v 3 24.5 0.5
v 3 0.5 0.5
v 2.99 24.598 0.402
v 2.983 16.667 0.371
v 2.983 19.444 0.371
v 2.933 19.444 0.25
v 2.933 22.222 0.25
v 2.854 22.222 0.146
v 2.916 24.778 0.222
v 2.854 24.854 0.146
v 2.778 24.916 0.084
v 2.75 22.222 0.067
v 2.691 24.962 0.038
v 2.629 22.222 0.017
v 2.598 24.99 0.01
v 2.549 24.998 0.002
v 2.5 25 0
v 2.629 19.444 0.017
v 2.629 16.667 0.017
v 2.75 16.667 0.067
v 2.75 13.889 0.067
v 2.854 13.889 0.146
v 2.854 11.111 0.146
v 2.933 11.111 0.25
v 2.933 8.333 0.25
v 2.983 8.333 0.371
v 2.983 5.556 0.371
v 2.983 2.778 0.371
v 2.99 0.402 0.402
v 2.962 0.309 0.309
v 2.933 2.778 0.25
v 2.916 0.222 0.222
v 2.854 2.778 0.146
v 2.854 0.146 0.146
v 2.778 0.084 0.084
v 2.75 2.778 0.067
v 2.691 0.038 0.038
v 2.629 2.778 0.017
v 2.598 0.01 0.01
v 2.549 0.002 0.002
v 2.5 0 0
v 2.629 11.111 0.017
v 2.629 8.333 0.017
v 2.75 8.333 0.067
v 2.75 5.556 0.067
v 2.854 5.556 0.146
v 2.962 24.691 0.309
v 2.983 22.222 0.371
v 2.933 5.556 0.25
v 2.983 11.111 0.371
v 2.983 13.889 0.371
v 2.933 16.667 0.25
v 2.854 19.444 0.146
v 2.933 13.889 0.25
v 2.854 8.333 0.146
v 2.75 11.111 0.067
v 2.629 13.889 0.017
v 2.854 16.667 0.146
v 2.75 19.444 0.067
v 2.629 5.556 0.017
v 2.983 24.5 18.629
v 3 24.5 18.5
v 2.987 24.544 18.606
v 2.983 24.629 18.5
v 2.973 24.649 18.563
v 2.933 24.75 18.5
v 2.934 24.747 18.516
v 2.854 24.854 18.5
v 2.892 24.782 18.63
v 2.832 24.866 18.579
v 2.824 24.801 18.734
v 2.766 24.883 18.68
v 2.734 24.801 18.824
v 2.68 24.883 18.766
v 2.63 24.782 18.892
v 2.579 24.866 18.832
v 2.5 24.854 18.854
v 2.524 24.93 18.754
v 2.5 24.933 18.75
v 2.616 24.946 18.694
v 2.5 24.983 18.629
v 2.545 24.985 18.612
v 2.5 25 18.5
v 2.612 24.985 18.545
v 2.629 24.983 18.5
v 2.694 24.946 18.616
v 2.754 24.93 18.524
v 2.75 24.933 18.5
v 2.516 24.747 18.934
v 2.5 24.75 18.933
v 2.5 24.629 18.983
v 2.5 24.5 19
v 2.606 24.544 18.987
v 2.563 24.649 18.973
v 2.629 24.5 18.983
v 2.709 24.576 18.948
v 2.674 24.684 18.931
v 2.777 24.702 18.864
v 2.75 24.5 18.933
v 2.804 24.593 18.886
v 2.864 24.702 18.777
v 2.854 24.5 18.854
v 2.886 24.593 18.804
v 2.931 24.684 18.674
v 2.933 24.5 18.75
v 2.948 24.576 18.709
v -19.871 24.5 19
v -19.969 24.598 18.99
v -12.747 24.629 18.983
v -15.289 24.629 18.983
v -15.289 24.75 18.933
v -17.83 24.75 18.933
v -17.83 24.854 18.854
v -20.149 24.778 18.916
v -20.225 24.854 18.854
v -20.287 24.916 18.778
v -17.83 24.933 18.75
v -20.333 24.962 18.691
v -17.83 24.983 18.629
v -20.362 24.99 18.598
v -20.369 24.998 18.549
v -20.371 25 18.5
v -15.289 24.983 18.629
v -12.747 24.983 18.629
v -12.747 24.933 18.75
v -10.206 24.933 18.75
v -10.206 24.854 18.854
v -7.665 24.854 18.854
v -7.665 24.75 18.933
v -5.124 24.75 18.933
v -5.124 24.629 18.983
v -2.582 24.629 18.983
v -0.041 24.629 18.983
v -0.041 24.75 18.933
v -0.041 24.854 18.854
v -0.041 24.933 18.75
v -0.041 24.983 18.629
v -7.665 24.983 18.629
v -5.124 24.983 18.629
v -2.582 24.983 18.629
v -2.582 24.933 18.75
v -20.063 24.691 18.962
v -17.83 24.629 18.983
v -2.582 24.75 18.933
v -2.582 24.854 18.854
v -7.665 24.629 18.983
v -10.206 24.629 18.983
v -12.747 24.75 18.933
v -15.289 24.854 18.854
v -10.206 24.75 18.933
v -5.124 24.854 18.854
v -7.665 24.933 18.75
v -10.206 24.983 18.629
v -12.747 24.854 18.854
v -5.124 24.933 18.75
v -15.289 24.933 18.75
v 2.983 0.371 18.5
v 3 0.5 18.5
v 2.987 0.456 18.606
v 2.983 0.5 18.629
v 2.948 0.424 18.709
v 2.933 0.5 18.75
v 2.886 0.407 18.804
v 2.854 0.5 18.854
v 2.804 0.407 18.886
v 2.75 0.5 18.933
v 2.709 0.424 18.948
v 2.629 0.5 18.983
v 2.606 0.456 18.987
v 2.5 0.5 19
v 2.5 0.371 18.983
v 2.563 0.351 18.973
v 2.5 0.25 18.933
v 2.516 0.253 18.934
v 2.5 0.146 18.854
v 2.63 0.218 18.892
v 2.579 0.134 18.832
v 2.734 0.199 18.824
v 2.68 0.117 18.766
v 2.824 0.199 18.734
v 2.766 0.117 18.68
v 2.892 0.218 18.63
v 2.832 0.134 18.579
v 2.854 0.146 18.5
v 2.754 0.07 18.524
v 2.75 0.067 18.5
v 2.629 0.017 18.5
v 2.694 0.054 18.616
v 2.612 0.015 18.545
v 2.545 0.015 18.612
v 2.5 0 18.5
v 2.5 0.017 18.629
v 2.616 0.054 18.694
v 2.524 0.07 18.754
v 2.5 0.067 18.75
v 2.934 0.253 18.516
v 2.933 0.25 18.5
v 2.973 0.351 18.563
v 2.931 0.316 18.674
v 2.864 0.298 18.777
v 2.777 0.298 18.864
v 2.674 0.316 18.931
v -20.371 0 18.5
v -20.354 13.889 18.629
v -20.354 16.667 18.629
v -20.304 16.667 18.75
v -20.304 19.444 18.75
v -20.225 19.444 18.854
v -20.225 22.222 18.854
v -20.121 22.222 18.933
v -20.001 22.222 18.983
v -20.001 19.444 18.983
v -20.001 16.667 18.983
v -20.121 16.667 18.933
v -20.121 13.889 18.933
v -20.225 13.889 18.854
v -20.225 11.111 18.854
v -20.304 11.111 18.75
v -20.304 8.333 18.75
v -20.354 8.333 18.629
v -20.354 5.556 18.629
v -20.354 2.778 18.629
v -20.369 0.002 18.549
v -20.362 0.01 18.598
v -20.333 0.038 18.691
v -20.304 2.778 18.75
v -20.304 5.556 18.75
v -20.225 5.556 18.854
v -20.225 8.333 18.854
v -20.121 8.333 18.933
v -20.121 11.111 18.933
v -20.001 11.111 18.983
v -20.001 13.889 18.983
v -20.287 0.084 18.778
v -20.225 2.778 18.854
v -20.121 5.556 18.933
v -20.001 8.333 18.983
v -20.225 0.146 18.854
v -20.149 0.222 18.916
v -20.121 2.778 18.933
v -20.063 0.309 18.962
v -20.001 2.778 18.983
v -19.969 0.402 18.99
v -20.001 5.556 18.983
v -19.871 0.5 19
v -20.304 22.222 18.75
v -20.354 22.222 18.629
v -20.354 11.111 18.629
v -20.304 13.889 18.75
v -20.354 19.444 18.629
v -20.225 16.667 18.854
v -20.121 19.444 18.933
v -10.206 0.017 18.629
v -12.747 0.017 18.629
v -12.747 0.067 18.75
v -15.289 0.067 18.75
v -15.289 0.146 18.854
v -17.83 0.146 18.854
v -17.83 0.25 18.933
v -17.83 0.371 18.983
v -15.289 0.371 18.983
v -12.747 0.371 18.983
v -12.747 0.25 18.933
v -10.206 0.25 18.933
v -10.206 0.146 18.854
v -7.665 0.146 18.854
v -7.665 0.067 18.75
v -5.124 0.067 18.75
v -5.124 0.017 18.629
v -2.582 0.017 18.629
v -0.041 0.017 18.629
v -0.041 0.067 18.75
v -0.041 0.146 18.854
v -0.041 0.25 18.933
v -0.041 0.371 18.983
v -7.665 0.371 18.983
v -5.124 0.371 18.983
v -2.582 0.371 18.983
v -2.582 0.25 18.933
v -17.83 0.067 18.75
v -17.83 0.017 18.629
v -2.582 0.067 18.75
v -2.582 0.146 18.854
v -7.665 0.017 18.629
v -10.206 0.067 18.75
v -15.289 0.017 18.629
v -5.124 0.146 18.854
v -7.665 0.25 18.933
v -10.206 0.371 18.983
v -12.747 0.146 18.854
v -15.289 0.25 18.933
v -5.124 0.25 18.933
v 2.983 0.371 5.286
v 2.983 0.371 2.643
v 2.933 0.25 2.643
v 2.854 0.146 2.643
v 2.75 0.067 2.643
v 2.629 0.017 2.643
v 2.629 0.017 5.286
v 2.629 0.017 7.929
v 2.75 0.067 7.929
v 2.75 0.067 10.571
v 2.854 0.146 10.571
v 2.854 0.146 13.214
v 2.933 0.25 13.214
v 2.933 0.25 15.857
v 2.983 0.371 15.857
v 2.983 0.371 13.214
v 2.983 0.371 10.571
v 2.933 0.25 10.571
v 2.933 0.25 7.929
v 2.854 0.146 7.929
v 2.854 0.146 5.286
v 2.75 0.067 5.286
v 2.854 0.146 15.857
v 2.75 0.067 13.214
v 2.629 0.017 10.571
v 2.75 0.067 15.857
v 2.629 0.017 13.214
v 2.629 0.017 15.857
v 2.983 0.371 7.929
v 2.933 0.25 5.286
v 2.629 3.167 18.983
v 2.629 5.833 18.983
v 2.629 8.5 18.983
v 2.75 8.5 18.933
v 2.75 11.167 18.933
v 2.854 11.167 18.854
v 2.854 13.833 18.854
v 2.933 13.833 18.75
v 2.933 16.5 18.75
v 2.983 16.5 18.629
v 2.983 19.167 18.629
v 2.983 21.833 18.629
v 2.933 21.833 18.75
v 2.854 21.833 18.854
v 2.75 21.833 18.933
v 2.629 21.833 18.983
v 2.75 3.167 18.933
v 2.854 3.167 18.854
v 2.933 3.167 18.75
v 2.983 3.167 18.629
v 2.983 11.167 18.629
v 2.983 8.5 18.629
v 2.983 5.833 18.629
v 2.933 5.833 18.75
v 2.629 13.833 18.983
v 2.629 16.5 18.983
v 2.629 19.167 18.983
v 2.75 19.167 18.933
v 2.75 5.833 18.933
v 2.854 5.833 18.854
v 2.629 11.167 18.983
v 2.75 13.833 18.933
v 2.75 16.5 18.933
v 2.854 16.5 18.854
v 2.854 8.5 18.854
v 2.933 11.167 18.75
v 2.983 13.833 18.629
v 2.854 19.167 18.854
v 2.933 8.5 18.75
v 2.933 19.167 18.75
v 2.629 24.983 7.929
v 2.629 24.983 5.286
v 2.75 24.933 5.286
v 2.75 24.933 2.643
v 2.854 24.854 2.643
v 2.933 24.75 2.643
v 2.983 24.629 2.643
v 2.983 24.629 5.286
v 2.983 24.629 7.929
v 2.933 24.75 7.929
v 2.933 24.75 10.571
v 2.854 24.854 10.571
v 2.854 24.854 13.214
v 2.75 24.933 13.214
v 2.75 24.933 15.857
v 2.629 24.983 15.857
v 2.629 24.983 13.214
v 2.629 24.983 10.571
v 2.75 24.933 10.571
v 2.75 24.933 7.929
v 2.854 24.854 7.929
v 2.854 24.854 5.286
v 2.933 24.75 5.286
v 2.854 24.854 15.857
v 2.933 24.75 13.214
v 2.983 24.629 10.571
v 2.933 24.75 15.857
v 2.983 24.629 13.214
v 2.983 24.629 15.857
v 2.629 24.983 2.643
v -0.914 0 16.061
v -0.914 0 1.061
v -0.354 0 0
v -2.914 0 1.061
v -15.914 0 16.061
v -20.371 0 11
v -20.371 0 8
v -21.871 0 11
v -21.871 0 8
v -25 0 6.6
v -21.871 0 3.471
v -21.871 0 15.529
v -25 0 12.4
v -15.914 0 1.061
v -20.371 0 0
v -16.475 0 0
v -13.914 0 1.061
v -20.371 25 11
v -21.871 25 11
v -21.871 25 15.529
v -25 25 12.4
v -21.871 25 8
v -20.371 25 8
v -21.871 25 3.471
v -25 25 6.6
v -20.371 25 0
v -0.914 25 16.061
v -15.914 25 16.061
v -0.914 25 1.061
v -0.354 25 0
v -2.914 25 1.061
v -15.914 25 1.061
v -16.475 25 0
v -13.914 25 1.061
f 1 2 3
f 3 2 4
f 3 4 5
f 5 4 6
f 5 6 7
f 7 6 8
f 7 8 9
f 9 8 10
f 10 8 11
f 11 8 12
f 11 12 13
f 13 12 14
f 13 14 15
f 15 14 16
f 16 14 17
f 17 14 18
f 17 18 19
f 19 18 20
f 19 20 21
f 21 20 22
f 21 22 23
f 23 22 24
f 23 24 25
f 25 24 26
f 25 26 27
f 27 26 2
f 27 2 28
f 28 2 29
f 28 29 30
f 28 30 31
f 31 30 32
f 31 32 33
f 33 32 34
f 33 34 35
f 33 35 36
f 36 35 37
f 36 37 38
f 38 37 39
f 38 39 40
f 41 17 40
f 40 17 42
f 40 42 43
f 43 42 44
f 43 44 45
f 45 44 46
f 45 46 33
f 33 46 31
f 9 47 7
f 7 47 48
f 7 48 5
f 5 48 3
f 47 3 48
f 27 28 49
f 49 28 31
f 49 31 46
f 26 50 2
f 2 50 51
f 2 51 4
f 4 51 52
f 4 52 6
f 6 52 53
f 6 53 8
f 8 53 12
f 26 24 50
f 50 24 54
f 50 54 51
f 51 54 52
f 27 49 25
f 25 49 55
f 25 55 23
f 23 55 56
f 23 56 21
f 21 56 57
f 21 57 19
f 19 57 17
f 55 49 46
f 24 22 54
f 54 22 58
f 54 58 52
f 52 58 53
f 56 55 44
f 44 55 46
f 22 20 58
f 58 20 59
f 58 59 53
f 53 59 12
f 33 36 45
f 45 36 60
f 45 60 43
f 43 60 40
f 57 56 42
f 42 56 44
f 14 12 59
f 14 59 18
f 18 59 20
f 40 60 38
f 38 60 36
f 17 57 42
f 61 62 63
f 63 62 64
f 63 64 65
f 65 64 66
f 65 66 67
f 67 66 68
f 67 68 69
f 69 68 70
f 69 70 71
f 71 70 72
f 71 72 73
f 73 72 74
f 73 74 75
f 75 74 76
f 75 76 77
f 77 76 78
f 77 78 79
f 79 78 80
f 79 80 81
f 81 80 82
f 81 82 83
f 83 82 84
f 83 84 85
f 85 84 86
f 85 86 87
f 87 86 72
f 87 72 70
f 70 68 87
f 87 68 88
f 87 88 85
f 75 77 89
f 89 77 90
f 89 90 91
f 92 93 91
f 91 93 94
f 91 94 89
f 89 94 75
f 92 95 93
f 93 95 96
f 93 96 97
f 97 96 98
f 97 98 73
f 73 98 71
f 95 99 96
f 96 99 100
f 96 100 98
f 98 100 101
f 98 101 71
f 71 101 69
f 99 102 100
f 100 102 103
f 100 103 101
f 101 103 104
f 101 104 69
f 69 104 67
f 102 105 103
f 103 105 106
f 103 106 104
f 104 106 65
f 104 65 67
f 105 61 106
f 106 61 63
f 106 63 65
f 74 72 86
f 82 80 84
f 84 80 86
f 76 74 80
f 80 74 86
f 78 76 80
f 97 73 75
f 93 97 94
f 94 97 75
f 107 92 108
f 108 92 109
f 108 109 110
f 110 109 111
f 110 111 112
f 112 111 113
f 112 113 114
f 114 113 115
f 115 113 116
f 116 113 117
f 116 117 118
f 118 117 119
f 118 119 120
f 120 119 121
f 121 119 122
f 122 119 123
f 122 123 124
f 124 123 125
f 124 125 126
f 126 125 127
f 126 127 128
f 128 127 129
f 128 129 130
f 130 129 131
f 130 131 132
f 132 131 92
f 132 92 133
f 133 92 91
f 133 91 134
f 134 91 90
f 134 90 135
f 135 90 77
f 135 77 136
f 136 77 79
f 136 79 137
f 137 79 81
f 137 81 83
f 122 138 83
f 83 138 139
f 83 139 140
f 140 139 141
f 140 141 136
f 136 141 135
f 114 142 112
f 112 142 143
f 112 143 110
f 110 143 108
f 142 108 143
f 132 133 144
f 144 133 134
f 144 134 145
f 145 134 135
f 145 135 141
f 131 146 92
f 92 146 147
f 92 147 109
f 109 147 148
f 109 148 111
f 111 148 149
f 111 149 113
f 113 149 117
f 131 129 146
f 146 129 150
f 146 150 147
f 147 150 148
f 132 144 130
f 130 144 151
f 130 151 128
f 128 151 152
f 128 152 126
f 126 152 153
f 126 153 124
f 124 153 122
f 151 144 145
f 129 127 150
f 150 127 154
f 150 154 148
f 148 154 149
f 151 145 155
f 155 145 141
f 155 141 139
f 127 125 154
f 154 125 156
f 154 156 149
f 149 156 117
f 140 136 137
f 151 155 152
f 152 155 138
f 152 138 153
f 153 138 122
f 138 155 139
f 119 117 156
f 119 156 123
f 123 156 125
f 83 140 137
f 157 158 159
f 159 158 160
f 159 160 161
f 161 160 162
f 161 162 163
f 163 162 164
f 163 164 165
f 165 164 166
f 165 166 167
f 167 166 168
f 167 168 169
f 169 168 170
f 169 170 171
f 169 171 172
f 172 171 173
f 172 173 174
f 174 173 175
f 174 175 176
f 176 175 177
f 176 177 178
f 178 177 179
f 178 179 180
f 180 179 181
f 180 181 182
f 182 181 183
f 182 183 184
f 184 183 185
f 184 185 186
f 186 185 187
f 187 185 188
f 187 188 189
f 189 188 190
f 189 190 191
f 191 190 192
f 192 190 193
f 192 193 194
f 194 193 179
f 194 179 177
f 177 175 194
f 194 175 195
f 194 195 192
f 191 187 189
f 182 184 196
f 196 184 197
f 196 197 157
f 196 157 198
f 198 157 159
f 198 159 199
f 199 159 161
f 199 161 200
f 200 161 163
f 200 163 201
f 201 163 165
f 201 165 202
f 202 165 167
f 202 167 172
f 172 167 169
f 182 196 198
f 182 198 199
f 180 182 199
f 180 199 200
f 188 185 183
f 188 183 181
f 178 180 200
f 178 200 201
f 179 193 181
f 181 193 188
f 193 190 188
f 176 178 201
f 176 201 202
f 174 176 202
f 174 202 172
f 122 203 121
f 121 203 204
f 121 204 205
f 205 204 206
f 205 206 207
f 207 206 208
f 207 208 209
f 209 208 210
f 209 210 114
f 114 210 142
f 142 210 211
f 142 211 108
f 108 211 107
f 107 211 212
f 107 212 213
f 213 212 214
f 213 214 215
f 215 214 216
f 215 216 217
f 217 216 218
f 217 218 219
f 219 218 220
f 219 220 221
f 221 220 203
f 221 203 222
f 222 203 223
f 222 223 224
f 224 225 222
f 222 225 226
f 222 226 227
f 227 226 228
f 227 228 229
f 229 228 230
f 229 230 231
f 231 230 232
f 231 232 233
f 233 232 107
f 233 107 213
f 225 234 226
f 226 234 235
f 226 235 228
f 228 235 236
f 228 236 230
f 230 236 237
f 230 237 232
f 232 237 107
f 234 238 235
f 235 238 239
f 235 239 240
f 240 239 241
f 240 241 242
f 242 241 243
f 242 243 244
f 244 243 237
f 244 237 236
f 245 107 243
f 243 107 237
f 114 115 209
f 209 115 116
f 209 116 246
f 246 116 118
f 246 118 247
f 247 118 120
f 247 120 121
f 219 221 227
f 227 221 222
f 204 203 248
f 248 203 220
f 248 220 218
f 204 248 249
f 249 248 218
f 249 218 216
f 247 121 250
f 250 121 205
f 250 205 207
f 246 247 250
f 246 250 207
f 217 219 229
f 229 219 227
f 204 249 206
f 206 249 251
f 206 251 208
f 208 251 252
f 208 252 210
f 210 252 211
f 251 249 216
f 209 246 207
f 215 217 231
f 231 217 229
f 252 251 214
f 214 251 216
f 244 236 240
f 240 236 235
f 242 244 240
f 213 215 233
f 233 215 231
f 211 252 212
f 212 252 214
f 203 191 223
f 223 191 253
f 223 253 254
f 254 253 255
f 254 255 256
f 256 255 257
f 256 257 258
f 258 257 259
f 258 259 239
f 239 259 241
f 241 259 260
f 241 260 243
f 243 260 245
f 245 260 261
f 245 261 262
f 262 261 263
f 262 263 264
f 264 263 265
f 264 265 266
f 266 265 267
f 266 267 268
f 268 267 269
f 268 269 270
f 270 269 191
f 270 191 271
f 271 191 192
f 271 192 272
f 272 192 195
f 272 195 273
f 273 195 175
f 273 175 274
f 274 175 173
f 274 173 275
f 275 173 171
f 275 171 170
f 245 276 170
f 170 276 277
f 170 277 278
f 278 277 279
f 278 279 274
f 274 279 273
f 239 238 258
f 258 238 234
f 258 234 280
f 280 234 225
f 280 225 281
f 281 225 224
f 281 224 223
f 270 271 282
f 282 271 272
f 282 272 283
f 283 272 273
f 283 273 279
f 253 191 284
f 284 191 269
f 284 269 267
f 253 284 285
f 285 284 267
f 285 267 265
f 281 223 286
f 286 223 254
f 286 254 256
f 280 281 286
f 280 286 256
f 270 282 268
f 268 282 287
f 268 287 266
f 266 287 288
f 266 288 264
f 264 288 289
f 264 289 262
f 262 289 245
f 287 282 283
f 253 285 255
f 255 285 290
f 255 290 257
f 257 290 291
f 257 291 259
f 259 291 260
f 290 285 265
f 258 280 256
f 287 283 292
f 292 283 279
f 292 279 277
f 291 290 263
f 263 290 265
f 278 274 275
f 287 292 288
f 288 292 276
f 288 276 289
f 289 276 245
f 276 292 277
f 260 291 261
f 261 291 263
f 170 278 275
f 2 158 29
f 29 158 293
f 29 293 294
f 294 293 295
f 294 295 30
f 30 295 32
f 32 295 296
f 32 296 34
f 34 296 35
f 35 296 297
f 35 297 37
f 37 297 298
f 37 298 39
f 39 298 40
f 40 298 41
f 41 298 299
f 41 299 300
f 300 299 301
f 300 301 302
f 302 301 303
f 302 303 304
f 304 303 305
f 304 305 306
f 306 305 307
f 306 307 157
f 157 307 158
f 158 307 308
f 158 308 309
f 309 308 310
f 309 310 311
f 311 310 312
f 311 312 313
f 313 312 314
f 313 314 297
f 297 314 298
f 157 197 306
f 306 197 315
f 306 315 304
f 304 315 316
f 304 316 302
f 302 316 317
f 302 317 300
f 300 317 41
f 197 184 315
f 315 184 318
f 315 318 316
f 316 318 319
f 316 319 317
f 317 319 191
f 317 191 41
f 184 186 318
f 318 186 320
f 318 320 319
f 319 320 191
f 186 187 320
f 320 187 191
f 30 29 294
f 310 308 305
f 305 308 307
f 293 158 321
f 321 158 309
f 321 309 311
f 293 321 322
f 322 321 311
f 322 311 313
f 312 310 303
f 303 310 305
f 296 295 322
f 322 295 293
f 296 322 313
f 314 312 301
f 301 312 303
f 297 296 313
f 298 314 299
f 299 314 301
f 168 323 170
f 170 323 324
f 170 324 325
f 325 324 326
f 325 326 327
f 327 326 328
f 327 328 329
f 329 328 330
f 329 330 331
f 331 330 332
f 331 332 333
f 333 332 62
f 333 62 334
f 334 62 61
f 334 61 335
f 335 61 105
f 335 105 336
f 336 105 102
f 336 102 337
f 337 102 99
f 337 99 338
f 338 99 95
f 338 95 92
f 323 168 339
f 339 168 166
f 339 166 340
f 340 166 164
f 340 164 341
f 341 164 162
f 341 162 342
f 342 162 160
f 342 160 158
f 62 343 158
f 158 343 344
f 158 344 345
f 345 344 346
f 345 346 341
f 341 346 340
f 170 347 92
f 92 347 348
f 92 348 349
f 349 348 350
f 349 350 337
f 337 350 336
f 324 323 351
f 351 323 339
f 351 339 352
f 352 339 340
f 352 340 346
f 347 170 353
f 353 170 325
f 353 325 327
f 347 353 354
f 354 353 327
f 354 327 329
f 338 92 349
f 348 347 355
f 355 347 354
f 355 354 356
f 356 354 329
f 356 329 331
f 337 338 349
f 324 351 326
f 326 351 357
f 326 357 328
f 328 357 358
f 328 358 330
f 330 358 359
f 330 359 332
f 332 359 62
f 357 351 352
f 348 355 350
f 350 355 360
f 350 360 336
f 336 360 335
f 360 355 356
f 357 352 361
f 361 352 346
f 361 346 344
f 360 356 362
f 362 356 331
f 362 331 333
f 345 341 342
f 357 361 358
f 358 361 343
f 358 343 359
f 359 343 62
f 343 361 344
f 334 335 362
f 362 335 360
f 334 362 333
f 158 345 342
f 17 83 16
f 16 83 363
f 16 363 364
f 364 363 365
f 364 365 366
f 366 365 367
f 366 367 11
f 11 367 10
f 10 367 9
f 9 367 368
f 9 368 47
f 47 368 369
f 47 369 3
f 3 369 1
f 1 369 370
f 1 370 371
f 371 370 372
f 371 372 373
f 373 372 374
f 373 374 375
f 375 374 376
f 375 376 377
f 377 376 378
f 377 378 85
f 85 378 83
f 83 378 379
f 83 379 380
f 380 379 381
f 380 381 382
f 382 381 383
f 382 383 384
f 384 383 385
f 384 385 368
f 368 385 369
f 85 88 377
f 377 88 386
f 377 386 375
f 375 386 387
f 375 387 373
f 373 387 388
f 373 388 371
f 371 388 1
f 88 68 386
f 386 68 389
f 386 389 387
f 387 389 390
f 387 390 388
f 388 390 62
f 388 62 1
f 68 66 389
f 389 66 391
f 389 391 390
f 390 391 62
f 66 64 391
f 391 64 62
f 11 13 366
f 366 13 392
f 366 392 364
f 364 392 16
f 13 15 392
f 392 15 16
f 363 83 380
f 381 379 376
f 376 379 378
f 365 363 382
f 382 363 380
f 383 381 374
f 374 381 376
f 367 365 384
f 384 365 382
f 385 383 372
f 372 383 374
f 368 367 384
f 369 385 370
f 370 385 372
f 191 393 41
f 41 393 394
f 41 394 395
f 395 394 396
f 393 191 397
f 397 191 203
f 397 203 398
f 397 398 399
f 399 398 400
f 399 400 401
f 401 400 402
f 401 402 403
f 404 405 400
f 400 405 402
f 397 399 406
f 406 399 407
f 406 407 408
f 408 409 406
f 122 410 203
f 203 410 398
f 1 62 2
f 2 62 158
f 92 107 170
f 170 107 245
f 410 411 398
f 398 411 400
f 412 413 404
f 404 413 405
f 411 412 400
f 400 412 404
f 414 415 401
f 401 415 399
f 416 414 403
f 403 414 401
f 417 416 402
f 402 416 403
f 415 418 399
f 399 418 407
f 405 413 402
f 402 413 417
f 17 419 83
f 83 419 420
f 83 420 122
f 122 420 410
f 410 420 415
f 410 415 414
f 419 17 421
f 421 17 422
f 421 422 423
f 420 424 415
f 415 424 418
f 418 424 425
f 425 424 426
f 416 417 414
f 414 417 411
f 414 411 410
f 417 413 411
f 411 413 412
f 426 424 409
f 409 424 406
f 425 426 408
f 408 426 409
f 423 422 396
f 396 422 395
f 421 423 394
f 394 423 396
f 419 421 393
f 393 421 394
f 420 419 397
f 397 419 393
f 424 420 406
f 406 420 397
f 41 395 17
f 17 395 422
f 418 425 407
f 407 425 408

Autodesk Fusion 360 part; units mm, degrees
sketch "Sketch1" plane through (0, 0, 0) normal (0, 0, 1) x (1, 0, 0) in component "Light Braccket"
  line L0 (0, 0) -> (-25, 0)
  line L1 (-25, 0) -> (-25, 25)
  line L2 (-25, 25) -> (0, 25)
  line L3 (0, 25) -> (0, 0)
  dimension "d1" = 25
  dimension "d2" = 25
extrude "Extrude1" add sketch "Sketch1" along normal blind 25 in component "Light Braccket"
sketch "Sketch2" plane through (0, 0, 0) normal (0, -1, 0) x (1, 0, 0) in component "Light Braccket"
  line L0 (-25, 0) -> (0, 0)
  line L1 (0, 0) -> (0, 25)
  line L2 (0, 25) -> (-25, 25)
  line L3 (-25, 25) -> (-25, 0)
  line L4 (-0.3536, 0) -> (-2.9142, 1.0607)
  line L5 (-0.3536, 0) -> (0.9236, 0) construction
  line L6 (-2.9142, 1.0607) -> (-0.9142, 1.0607)
  line L7 (-0.9142, 1.0607) -> (-0.9142, 16.0607)
  line L8 (-0.9142, 18.8102) -> (-15.9142, 18.8102) construction
  line L9 (-8.4142, 18.8102) -> (-8.4142, -0.114) construction
  line L10 (-16.4749, 0) -> (-13.9142, 1.0607)
  line L11 (-13.9142, 1.0607) -> (-15.9142, 1.0607)
  line L12 (-15.9142, 1.0607) -> (-15.9142, 16.0607)
  line L13 (-0.9142, 16.0607) -> (-15.9142, 16.0607)
  dimension "d14" = 15
extrude "Extrude2" cut sketch "Sketch2" against normal blind 40 contours L0 L4 L6 L7 L10 L11 L12 L13 in component "Light Braccket"
sketch "Sketch3" plane through (0, 0, 0) normal (0, -1, 0) x (1, 0, 0) in component "Light Braccket"
  line L0 (-16.4749, 0) -> (-13.9142, 1.0607)
  line L1 (-13.9142, 1.0607) -> (-15.9142, 1.0607)
  line L2 (-15.9142, 1.0607) -> (-15.9142, 16.0607)
  line L3 (-15.9142, 16.0607) -> (-0.9142, 16.0607)
  line L4 (-0.9142, 16.0607) -> (-0.9142, 1.0607)
  line L5 (-0.9142, 1.0607) -> (-2.9142, 1.0607)
  line L6 (-2.9142, 1.0607) -> (-0.3536, 0)
  line L7 (-0.3536, 0) -> (0, 0)
  line L8 (0, 0) -> (0, 25)
  line L9 (0, 25) -> (-25, 25)
  line L10 (-25, 25) -> (-25, 0)
  line L11 (-25, 0) -> (-16.4749, 0)
  line L12 (-25, 25) -> (0, 25)
  line L13 (0, 25) -> (0, 19)
  line L14 (0, 19) -> (-25, 19)
  line L15 (-25, 19) -> (-25, 25)
extrude "Extrude3" cut sketch "Sketch3" against normal blind 39 contours L8 L9 L10 L12 L13 L14 L15 in component "Light Braccket"
sketch "Sketch4" plane through (0, 0, 0) normal (0, -1, 0) x (1, 0, 0) in component "Light Braccket"
  line L0 (0, 19) -> (-25, 19)
  line L1 (-25, 19) -> (-25, 0)
  line L2 (-25, 0) -> (-16.4749, 0)
  line L3 (-16.4749, 0) -> (-13.9142, 1.0607)
  line L4 (-13.9142, 1.0607) -> (-15.9142, 1.0607)
  line L5 (-15.9142, 1.0607) -> (-15.9142, 16.0607)
  line L6 (-15.9142, 16.0607) -> (-0.9142, 16.0607)
  line L7 (-0.9142, 16.0607) -> (-0.9142, 1.0607)
  line L8 (-0.9142, 1.0607) -> (-2.9142, 1.0607)
  line L9 (-2.9142, 1.0607) -> (-0.3536, 0)
  line L10 (-0.3536, 0) -> (0, 0)
  line L11 (0, 0) -> (0, 19)
  line L12 (-25, 0) -> (-25, 6.6)
  line L13 (-25, 6.6) -> (-21.8712, 3.4712)
  line L14 (-25, 6.6) -> (-20.5752, 6.6) construction
  line L15 (-21.8712, 3.4712) -> (-21.8712, 8)
  line L16 (-21.8712, 8) -> (-20.3712, 8)
  line L17 (-20.3712, 8) -> (-20.3712, 0)
  line L18 (-25, 0) -> (-20.3712, 0)
  line L19 (-25, 9.5) -> (0, 9.5) construction
  line L20 (-25, 12.4) -> (-21.8712, 15.5288)
  line L21 (-21.8712, 15.5288) -> (-21.8712, 11)
  line L22 (-20.3712, 11) -> (-20.3712, 19)
  line L23 (-21.8712, 11) -> (-20.3712, 11)
  line L24 (-25, 19) -> (-20.3712, 19)
  line L25 (-25, 19) -> (-25, 12.4)
  dimension "d19" = 6.6
  dimension "d20" = 45
  dimension "d21" = 1.5
extrude "Extrude4" cut sketch "Sketch4" against normal blind 33.5 contours L0 L1 L20 L21 L22 L23 L24 L25 | L1 L2 L12 L13 L15 L16 L17 L18 in component "Light Braccket"
sketch "Sketch1 (2)" plane through (0, 0, 0) normal (1, 0, 0) x (0, 1, 0)
  line L0 (25, 19) -> (0, 19)
  line L1 (0, 19) -> (0, 0)
  line L2 (0, 0) -> (25, 0)
  line L3 (25, 0) -> (25, 19)
extrude "Extrude5" add sketch "Sketch1 (2)" along normal blind 3 in component "Light Braccket"
fillet "Fillet2" radius 0.5 7 edges at (-8.6856, 0, 19) (-20.3712, 12.5, 19) (-8.6856, 25, 19) (3, 12.5, 19) (3, 0, 9.5) (3, 25, 9.5) (3, 12.5, 0) in component "Light Braccket"
component "Light Braccket" placed x (1, 0, 0) y (0, 1, 0) z (0, 0, 1) at (0, 0, 0)
